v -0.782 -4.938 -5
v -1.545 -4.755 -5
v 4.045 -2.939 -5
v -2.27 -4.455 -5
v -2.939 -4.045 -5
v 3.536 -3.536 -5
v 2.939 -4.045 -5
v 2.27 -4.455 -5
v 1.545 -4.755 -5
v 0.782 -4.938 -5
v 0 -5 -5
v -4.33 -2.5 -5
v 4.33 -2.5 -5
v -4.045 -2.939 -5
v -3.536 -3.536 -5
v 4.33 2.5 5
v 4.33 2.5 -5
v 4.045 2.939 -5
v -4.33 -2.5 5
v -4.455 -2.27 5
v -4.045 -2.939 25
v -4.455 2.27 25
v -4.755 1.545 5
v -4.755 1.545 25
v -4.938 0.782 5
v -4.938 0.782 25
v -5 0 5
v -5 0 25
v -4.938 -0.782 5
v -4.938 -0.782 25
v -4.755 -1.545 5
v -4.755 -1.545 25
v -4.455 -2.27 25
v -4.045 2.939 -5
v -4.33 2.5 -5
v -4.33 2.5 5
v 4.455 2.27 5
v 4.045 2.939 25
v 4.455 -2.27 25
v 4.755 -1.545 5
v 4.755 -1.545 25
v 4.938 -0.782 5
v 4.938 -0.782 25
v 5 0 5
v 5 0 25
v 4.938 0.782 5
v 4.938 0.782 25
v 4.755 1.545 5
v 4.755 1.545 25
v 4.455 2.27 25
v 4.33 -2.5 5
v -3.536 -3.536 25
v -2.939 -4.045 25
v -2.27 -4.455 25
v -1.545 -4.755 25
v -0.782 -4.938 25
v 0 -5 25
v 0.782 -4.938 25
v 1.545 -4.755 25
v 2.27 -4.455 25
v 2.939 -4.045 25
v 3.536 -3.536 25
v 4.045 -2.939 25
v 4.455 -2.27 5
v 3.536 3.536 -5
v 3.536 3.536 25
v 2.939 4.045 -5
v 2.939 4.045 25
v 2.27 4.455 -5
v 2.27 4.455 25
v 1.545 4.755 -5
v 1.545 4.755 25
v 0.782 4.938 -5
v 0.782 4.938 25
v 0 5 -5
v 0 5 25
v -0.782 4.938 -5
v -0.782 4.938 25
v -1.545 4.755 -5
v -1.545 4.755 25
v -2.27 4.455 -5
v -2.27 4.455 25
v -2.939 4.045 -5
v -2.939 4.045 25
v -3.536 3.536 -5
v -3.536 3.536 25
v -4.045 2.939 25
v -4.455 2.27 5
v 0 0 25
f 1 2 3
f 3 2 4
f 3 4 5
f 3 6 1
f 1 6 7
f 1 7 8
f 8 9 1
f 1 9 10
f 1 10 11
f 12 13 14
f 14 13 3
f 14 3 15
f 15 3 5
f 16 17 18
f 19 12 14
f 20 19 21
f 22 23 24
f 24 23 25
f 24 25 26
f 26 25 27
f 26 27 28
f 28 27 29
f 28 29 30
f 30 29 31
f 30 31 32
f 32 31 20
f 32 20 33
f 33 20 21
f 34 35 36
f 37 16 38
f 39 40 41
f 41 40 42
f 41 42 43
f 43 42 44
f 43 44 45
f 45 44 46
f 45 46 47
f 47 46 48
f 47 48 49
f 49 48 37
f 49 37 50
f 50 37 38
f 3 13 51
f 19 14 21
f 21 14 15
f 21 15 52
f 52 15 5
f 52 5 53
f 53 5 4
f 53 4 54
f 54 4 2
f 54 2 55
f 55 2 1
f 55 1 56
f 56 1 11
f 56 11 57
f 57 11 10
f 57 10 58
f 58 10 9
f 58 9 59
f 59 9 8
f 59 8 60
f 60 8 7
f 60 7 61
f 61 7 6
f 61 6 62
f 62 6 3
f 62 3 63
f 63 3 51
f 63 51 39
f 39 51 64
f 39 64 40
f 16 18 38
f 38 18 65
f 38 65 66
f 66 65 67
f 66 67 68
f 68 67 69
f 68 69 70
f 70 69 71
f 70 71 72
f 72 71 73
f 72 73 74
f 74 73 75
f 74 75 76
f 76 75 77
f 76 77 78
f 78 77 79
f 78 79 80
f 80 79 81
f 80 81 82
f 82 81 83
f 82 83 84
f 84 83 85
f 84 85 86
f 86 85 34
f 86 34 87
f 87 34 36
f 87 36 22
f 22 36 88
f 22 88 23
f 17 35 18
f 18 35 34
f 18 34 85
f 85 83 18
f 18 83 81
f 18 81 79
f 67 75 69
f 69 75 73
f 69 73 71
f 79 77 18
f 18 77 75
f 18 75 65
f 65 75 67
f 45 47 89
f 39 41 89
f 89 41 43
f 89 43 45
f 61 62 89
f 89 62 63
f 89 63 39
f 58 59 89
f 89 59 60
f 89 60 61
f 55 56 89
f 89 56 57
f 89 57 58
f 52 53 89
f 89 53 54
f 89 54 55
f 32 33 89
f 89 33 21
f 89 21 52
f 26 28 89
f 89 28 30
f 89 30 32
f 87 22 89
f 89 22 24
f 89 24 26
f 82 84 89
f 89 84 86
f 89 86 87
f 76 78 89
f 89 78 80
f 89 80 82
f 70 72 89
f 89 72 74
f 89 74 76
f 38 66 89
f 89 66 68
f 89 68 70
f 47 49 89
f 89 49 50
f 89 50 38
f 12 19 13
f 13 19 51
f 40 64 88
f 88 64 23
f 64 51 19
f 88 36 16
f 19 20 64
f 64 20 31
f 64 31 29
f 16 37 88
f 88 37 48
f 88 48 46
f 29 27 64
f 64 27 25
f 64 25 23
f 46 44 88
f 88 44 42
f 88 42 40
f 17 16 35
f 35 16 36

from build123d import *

# Parameters (mm, degrees)
SKETCH1_R                = 5
BOSS_EXTRUDE1_DEPTH      = 25
BOSS_EXTRUDE1_DEPTH_BACK = 5
SKETCH3_W                = 10
SKETCH3_H                = 5
CUT_EXTRUDE2_DEPTH       = 6
CUT_EXTRUDE2_DEPTH_BACK  = 6


with BuildPart() as part:
    # Sketch1 → Boss-Extrude1 (new body, two sides)
    with BuildSketch(Plane.XY) as boss_extrude1_sk:
        Circle(SKETCH1_R)
    extrude(amount=BOSS_EXTRUDE1_DEPTH)
    extrude(boss_extrude1_sk.sketch, amount=-BOSS_EXTRUDE1_DEPTH_BACK)

    # Sketch3 → Cut-Extrude2 (cut, two sides)
    with BuildSketch(Plane(origin=(0, 0, 0), x_dir=(0, 0, -1), z_dir=(1, 0, 0))) as cut_extrude2_sk:
        Rectangle(SKETCH3_W, SKETCH3_H)
    extrude(amount=CUT_EXTRUDE2_DEPTH, mode=Mode.SUBTRACT)
    extrude(cut_extrude2_sk.sketch, amount=-CUT_EXTRUDE2_DEPTH_BACK, mode=Mode.SUBTRACT)


solid = part.part
